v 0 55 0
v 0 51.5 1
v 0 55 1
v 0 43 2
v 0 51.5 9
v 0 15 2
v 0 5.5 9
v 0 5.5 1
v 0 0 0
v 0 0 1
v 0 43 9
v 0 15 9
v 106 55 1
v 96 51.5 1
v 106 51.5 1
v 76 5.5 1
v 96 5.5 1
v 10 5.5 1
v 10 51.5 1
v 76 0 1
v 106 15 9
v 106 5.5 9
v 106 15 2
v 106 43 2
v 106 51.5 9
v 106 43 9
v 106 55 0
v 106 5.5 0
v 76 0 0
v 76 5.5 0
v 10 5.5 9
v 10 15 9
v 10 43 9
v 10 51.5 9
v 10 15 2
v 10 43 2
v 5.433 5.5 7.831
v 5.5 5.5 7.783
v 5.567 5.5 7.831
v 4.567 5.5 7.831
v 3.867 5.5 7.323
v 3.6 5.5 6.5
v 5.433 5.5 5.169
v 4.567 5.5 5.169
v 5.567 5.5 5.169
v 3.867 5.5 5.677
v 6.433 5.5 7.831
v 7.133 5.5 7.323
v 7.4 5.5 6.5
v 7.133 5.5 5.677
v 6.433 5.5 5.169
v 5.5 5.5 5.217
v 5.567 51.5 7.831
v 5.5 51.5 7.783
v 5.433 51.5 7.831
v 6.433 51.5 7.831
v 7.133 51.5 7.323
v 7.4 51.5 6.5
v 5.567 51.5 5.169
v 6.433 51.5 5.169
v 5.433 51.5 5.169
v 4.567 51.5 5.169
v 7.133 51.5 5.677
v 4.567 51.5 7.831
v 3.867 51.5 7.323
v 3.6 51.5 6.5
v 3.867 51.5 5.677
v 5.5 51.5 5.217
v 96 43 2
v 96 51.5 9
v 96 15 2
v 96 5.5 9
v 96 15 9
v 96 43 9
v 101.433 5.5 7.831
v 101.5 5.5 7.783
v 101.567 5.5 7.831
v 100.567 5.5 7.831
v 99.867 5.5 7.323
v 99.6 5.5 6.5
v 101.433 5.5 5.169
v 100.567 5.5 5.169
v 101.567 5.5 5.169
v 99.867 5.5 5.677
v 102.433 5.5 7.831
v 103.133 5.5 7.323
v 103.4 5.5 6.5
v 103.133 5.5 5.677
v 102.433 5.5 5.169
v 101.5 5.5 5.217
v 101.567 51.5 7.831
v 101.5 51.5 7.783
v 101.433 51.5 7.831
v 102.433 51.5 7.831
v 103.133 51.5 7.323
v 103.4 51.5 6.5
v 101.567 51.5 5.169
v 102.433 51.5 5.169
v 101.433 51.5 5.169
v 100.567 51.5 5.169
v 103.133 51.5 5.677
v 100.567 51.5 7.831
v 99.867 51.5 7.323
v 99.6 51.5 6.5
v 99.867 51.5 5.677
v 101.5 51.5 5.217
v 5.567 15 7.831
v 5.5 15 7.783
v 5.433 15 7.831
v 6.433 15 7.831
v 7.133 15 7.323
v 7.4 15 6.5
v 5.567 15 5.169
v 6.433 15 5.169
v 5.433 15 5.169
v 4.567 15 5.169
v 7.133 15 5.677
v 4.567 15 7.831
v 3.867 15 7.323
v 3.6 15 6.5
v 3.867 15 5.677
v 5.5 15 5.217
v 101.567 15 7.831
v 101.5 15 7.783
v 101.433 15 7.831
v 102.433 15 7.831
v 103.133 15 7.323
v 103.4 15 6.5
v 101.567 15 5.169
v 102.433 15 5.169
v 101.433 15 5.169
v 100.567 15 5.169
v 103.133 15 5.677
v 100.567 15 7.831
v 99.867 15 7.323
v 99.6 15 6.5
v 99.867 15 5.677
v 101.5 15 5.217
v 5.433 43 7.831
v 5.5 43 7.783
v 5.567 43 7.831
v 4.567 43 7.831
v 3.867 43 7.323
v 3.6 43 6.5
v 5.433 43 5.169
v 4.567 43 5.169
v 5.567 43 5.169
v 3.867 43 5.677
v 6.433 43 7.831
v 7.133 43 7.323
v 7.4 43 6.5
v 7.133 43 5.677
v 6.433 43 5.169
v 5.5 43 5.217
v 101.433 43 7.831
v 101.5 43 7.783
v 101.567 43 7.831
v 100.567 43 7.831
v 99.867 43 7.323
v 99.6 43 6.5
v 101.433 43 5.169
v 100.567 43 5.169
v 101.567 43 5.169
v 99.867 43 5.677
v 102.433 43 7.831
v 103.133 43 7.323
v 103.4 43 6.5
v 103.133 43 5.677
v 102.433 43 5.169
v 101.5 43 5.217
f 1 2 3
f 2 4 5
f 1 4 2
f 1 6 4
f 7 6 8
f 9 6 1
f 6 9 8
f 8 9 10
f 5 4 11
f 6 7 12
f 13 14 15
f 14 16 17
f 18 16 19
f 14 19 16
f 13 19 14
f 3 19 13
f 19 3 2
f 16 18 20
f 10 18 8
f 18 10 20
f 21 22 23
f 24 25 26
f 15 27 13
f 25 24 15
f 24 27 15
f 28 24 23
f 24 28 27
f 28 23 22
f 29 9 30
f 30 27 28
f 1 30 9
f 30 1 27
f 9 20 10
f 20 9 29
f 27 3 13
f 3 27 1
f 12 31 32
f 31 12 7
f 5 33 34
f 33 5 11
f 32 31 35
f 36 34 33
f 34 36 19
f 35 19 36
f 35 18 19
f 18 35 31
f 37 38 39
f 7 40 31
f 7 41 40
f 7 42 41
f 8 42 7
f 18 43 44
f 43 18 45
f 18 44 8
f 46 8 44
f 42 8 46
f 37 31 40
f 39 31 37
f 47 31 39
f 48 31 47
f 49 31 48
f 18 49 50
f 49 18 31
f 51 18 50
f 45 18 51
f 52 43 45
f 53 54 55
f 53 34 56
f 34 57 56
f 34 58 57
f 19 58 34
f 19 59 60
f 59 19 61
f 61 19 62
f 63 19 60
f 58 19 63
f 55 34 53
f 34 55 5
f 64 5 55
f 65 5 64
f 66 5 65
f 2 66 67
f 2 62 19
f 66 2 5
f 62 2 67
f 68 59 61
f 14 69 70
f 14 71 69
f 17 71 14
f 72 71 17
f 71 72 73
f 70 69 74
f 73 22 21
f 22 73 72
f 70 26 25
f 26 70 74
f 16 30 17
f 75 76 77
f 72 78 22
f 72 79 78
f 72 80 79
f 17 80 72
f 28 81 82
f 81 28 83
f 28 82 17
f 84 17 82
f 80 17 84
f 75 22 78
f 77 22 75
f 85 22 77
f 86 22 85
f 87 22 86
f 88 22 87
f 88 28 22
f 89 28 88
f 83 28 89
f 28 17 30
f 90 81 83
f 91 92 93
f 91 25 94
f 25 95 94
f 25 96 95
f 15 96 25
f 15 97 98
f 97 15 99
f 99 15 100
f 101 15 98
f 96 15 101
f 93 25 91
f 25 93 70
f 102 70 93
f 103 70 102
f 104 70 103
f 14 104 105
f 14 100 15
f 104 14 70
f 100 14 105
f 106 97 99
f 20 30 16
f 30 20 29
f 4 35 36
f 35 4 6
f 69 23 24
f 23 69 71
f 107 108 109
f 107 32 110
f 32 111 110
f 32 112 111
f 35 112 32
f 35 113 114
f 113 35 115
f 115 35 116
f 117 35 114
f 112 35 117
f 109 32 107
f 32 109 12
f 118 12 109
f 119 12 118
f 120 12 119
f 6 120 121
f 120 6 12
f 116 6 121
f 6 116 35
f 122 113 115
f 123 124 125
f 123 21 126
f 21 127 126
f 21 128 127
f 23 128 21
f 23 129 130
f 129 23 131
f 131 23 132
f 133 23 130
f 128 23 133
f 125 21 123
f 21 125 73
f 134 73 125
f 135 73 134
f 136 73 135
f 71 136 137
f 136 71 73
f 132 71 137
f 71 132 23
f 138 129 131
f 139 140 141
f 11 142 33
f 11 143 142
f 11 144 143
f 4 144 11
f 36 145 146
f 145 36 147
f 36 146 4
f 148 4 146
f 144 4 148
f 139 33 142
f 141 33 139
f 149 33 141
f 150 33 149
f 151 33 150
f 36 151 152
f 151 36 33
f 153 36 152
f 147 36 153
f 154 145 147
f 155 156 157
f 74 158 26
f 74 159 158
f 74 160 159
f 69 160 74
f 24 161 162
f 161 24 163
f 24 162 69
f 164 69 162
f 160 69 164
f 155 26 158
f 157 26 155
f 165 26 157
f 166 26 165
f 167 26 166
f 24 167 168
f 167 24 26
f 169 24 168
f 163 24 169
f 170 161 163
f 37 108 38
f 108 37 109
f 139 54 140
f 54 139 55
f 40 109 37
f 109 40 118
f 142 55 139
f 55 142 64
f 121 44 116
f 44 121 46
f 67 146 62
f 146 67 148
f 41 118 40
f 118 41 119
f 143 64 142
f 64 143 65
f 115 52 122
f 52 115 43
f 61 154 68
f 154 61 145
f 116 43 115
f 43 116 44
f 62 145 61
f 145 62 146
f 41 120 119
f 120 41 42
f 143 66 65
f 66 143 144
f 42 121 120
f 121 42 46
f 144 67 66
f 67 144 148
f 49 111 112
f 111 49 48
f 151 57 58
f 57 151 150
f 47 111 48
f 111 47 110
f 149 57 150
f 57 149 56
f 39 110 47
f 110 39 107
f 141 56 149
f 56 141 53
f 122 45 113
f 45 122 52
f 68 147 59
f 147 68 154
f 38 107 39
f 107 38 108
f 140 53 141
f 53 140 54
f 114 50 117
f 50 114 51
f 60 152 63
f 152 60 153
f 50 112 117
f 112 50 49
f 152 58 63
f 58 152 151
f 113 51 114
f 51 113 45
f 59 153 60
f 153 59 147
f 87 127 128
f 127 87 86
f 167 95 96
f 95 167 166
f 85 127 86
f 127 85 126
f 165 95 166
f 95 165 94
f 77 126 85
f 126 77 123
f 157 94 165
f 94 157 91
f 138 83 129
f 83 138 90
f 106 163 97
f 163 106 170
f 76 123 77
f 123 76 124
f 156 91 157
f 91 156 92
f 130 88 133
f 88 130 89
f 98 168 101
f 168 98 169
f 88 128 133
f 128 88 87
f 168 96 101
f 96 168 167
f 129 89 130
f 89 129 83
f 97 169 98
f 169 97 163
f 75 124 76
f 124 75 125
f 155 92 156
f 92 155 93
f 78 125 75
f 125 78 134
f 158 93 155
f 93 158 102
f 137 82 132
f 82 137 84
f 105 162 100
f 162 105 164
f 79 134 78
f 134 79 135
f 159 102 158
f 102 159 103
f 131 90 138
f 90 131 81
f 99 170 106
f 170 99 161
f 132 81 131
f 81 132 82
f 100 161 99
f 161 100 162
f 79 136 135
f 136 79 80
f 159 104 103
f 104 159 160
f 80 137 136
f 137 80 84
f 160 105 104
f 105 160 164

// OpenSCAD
difference(){
union(){
cube([106,55,1]);
translate([0,5.5,0])cube([10,55-9,9]);
translate([96,5.5,0])cube([10,55-9,9]);
}

translate([76,0,-1])cube([30,5.5,10]);
translate([0,15,2])cube([110,28,10]);
translate([5,96,6.5]) rotate([90,0,0]) cylinder(r=1.4, h=100,$fn=10);
translate([6,96,6.5]) rotate([90,0,0]) cylinder(r=1.4, h=100,$fn=10);
translate([106-4,96,6.5]) rotate([90,0,0]) cylinder(r=1.4, h=100,$fn=10);
translate([106-5,96,6.5]) rotate([90,0,0]) cylinder(r=1.4, h=100,$fn=10);
}
